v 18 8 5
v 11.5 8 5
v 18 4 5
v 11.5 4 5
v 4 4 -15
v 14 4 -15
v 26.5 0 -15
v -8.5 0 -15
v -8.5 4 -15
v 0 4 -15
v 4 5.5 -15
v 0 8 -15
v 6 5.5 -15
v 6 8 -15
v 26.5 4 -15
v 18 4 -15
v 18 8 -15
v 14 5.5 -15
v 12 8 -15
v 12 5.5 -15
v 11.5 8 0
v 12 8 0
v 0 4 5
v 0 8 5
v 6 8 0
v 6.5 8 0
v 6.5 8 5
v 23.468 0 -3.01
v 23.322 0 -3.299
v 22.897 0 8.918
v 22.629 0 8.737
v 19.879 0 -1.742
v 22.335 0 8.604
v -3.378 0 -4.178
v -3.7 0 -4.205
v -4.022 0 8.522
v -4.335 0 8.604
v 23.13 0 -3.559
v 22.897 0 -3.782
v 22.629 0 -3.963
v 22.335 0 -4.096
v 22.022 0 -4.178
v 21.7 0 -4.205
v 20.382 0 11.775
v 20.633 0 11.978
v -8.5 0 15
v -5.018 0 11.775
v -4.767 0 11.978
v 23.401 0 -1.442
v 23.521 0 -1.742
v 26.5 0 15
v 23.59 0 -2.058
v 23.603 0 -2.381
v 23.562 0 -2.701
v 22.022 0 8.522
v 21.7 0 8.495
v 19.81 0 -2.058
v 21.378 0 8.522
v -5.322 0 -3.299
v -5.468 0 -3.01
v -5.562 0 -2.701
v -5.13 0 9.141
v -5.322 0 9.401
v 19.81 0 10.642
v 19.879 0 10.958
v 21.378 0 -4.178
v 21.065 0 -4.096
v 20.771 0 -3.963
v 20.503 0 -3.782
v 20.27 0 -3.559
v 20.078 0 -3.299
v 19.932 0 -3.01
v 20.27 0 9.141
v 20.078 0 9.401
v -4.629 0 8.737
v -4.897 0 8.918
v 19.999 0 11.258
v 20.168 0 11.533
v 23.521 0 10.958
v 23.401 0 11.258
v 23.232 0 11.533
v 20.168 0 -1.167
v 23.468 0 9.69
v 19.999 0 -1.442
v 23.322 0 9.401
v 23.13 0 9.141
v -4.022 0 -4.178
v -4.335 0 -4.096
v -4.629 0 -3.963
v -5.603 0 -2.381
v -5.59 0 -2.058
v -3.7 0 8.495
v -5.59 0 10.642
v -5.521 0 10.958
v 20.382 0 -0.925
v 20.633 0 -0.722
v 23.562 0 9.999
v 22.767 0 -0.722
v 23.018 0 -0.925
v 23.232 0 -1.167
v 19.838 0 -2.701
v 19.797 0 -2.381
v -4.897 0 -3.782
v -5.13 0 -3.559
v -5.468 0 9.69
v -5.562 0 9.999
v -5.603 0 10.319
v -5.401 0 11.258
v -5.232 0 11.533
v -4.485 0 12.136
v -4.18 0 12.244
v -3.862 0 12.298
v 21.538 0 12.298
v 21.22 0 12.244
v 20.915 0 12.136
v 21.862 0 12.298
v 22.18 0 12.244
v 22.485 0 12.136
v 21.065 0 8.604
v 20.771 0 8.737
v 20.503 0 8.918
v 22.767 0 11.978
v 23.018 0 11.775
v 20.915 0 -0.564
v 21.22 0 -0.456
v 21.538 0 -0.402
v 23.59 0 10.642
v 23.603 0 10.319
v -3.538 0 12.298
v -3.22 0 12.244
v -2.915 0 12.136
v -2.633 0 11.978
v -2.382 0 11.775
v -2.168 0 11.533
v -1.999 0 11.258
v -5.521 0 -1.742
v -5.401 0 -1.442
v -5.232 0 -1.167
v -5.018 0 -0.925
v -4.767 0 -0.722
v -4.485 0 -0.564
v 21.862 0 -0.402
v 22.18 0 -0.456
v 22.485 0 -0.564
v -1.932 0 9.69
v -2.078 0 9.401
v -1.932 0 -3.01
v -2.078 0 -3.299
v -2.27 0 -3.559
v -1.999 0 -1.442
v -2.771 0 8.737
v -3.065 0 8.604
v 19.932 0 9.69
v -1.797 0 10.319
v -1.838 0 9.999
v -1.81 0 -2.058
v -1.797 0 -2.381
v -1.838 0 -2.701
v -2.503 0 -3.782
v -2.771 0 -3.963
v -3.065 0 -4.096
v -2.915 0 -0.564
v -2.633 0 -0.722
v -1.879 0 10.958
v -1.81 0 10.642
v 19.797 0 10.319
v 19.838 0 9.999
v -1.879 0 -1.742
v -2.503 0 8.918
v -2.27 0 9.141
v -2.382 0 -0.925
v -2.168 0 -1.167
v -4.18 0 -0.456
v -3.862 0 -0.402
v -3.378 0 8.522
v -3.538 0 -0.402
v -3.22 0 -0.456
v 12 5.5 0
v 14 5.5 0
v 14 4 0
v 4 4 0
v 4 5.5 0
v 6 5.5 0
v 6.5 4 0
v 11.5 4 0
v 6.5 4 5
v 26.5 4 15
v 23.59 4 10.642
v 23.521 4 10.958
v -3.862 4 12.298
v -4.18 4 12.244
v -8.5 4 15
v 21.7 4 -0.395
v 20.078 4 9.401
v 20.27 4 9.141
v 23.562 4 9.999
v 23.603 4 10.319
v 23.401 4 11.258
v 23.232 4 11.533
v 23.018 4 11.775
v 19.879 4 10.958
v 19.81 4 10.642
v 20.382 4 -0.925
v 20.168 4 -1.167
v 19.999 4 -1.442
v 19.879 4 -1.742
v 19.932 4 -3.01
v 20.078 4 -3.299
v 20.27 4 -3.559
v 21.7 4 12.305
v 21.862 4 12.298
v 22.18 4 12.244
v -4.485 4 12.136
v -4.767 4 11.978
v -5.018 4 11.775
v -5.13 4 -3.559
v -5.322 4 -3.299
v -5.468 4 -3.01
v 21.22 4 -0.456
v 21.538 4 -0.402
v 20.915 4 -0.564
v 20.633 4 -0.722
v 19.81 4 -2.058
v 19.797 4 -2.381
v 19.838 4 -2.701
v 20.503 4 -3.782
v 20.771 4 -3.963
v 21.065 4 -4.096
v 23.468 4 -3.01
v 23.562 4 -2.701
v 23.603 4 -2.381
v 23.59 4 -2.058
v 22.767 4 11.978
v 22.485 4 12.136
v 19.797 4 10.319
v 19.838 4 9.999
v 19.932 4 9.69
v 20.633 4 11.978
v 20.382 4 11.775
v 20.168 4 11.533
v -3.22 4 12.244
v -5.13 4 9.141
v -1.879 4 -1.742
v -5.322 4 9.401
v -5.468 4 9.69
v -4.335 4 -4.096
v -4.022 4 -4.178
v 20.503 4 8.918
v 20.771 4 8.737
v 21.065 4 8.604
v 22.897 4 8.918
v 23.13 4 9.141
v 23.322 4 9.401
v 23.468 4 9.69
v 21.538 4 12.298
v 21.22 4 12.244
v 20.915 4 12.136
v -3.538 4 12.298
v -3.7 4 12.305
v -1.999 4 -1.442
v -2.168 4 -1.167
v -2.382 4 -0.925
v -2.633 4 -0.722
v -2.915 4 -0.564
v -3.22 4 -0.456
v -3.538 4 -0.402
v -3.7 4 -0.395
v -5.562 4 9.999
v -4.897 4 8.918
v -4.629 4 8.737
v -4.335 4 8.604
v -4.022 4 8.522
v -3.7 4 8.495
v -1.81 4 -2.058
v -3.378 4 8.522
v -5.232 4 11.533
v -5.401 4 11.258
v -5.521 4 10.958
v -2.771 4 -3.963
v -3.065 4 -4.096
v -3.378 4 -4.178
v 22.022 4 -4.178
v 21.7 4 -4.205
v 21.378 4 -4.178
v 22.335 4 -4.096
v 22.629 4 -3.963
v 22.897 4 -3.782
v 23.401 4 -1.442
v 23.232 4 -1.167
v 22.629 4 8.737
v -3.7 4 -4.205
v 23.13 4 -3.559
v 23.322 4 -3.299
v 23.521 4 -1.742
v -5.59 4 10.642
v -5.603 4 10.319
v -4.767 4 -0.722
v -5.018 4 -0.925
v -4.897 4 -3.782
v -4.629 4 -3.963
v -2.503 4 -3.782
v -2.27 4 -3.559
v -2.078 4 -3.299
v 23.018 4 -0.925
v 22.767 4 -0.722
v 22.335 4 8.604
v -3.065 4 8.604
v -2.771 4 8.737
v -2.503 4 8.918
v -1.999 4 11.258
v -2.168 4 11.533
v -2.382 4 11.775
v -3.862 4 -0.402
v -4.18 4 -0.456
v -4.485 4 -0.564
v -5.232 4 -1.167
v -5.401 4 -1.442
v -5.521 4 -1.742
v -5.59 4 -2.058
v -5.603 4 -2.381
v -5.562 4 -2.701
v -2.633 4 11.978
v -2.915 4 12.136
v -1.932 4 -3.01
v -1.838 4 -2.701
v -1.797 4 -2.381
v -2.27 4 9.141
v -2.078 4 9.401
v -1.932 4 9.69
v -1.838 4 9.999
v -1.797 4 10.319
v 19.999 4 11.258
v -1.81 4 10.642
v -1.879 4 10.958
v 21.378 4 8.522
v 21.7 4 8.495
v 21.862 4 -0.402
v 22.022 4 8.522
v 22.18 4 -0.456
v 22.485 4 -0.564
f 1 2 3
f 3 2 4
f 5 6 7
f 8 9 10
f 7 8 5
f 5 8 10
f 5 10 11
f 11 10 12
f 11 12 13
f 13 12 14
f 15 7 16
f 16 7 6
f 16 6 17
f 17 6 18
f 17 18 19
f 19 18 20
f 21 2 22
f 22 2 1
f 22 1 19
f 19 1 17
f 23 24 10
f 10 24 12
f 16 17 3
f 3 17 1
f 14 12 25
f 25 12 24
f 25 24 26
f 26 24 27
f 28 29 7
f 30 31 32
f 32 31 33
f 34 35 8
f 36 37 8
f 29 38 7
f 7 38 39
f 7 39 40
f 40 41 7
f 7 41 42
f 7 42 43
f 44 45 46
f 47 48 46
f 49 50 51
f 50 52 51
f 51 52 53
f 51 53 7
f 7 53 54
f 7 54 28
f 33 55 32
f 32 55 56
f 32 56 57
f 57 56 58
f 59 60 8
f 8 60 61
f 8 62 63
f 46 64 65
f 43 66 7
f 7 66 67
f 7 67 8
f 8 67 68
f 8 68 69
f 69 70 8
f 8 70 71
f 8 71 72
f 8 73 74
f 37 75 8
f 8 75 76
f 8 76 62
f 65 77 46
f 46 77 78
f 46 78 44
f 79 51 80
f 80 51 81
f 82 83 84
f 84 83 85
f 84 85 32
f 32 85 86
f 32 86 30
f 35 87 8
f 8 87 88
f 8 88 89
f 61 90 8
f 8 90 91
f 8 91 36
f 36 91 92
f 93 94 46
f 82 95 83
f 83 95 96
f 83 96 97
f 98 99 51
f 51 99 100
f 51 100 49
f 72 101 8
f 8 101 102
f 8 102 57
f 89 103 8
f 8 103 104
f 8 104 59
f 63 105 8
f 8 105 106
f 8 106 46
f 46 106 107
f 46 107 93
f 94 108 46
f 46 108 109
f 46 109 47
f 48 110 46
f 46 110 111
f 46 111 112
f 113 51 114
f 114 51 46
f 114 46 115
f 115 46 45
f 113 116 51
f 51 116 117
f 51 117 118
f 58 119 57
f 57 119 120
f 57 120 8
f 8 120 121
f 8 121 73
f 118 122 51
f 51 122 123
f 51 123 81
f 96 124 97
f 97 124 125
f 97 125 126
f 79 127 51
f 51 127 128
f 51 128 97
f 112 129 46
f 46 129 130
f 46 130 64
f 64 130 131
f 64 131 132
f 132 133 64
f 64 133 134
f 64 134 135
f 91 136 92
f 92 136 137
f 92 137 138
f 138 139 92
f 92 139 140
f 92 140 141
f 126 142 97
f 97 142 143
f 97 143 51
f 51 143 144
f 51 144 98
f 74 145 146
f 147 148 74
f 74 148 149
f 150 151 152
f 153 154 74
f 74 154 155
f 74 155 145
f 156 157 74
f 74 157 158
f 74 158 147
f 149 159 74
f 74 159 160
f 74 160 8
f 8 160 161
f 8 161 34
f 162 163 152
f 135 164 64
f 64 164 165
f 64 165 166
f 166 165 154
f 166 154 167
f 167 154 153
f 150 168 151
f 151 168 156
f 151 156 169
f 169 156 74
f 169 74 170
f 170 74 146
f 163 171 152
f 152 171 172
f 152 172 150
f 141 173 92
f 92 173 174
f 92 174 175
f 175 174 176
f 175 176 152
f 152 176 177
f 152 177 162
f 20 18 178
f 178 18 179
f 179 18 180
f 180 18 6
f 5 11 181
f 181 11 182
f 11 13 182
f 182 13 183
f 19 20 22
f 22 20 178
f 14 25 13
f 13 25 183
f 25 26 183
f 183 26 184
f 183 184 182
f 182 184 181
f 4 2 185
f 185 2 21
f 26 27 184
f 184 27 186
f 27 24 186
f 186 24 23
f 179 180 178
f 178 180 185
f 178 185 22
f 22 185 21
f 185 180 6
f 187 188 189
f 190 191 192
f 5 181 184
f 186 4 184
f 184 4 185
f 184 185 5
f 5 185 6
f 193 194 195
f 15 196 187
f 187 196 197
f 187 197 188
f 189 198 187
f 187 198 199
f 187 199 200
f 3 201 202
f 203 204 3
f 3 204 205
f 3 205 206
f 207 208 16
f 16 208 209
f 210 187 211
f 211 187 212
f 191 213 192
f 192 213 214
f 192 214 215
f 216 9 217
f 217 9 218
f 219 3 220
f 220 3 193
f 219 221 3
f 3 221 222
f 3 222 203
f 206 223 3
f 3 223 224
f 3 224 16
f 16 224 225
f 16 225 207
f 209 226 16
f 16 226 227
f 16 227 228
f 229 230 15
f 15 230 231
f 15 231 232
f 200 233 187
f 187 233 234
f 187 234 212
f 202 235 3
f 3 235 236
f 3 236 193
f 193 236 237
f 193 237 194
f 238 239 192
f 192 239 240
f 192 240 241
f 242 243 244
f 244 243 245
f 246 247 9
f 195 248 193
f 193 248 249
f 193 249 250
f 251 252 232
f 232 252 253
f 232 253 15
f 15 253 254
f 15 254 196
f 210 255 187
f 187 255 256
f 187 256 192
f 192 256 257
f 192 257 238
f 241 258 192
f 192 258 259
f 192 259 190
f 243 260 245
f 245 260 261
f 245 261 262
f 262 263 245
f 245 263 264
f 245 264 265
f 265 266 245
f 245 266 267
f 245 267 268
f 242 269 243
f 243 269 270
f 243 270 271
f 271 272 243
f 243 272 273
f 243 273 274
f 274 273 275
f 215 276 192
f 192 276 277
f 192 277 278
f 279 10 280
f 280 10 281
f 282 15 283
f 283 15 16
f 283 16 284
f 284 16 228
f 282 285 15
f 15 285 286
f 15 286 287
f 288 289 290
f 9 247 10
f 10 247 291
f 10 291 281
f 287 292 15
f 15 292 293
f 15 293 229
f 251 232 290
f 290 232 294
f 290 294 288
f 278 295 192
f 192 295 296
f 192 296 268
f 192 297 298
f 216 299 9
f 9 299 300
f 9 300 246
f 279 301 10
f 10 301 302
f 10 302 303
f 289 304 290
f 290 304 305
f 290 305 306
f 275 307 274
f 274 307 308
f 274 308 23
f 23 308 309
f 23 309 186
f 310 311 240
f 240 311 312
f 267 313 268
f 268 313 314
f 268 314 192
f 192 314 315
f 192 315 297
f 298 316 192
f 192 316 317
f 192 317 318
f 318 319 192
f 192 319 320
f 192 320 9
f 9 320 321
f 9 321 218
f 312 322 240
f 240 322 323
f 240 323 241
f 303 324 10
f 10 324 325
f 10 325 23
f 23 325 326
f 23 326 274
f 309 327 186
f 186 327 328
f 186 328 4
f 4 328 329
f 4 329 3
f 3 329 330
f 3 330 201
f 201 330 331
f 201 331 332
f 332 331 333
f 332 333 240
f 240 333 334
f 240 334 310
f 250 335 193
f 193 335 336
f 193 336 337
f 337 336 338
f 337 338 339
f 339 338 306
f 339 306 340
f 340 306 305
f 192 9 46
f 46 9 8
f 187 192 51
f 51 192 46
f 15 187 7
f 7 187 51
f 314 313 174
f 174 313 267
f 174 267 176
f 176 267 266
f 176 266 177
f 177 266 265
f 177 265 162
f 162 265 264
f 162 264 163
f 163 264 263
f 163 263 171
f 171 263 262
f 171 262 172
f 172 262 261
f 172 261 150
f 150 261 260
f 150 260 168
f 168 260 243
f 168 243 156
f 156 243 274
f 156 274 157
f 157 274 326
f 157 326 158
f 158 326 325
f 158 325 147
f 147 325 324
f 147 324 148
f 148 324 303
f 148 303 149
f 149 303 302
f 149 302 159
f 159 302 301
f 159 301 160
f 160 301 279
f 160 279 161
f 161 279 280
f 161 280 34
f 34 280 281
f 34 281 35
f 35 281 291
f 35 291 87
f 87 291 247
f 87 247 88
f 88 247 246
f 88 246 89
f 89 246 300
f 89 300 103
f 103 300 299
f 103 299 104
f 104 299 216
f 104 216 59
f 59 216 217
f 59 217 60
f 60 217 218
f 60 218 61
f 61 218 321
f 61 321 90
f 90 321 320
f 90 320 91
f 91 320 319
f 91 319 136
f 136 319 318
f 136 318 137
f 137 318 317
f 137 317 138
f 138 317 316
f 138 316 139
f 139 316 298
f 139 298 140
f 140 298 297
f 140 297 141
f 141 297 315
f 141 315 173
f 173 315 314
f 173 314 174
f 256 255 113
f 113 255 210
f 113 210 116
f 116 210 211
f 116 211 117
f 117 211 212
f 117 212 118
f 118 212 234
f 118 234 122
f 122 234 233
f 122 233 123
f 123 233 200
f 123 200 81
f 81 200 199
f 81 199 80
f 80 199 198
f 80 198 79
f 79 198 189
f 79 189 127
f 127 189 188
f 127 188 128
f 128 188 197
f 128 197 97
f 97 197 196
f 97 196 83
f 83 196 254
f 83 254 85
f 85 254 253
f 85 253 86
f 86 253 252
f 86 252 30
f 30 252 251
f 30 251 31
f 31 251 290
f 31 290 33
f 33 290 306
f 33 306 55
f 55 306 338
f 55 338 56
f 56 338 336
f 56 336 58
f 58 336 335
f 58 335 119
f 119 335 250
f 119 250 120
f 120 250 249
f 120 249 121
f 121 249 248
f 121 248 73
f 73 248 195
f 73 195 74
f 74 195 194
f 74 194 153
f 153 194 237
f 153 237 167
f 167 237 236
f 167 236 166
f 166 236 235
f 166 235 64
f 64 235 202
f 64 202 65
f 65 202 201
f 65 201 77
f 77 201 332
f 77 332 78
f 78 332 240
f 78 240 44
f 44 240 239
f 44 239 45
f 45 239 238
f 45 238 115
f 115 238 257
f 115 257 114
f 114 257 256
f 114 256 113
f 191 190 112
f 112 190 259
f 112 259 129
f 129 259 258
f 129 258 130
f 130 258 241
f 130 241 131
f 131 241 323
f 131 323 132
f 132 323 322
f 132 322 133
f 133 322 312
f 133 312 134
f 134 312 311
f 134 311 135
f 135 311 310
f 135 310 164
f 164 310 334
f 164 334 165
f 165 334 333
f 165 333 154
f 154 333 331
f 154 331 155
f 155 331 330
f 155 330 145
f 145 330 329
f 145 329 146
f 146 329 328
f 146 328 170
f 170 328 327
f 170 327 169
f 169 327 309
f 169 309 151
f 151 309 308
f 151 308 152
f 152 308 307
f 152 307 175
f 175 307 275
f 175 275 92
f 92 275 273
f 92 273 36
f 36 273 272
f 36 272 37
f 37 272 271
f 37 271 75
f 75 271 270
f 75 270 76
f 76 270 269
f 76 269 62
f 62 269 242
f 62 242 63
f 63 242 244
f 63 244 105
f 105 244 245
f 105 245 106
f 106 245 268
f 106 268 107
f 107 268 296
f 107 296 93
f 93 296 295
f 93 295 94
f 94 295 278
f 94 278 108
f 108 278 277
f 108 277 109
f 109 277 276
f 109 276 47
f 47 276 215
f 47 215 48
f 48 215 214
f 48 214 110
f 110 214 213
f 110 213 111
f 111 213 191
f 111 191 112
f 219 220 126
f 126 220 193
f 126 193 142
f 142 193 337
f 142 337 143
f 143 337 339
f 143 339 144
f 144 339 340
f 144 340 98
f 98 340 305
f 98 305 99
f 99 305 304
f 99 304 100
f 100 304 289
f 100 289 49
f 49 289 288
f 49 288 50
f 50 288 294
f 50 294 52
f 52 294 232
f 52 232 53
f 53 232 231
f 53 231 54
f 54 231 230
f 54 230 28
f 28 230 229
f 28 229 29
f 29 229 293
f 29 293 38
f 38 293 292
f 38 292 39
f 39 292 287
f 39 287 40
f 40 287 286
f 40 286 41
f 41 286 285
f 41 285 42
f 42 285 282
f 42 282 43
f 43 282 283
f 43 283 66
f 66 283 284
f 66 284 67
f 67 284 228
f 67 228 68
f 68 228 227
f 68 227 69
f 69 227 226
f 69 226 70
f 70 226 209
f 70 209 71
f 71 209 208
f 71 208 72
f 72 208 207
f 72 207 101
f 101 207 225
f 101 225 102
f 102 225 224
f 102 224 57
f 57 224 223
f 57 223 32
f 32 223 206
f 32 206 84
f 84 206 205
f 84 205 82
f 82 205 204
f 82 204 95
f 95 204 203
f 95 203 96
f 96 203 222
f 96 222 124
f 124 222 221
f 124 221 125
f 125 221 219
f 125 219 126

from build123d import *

# Parameters (mm, degrees)
SKETCH1_W               = 18
SKETCH1_H               = 15
BOSS_EXTRUDE1_DEPTH     = 8
SKETCH2_W               = 6
SKETCH2_H               = 2.5
SKETCH2_W_2             = 10
SKETCH2_H_2             = 2
CUT_EXTRUDE1_DEPTH      = 1
CUT_EXTRUDE1_DEPTH_BACK = 16
SKETCH4_W               = 5
SKETCH4_H               = 3.5
BOSS_EXTRUDE2_DEPTH     = 5
SKETCH5_W               = 35
SKETCH5_H               = 30
BOSS_EXTRUDE3_DEPTH     = 4
SKETCH6_R               = 1.905
CUT_EXTRUDE2_DEPTH      = 1
CUT_EXTRUDE2_DEPTH_BACK = 9


with BuildPart() as part:
    # Sketch1 → Boss-Extrude1 (new body)
    with BuildSketch(Plane(origin=(0, 0, 0), x_dir=(1, 0, 0), z_dir=(0, 1, 0))):
        with Locations((9, 7.5)):
            Rectangle(SKETCH1_W, SKETCH1_H)
    extrude(amount=BOSS_EXTRUDE1_DEPTH)

    # Sketch2 → Cut-Extrude1 (cut, two sides)
    with BuildSketch(Plane.XY) as cut_extrude1_sk:
        with Locations((9, 6.75)):
            Rectangle(SKETCH2_W, SKETCH2_H)
        with Locations((9, 4.5)):
            Rectangle(SKETCH2_W_2, SKETCH2_H_2)
    extrude(amount=CUT_EXTRUDE1_DEPTH, mode=Mode.SUBTRACT)
    extrude(cut_extrude1_sk.sketch, amount=-CUT_EXTRUDE1_DEPTH_BACK, mode=Mode.SUBTRACT)

    # Sketch4 → Boss-Extrude2 (add)
    with BuildSketch(Plane.XY):
        with Locations((9, 1.75)):
            Rectangle(SKETCH4_W, SKETCH4_H)
        Polygon((11.5, 3.5), (11.5, 0), (18, 0), (18, 8), (12, 8), (12, 5.5), (14, 5.5), (14, 3.5), align=None)
        Polygon((6, 8), (0, 8), (0, 0), (6.5, 0), (6.5, 3.5), (4, 3.5), (4, 5.5), (6, 5.5), align=None)
        Polygon((6.5, 8), (6, 8), (6, 5.5), (4, 5.5), (4, 3.5), (6.5, 3.5), align=None)
        Polygon((12, 8), (11.5, 8), (11.5, 3.5), (14, 3.5), (14, 5.5), (12, 5.5), align=None)
    extrude(amount=BOSS_EXTRUDE2_DEPTH)

    # Sketch5 → Boss-Extrude3 (add)
    with BuildSketch(Plane(origin=(0, 0, 0), x_dir=(-1, 0, 0), z_dir=(0, -1, 0))):
        with Locations((-9, 0)):
            Rectangle(SKETCH5_W, SKETCH5_H)
    extrude(amount=-BOSS_EXTRUDE3_DEPTH)

    # Sketch6 → Cut-Extrude2 (cut, two sides)
    with BuildSketch(Plane(origin=(0, 0, 0), x_dir=(-1, 0, 0), z_dir=(0, -1, 0))) as cut_extrude2_sk:
        with Locations((3.7, 2.3)):
            Circle(SKETCH6_R)
        with Locations((-21.7, -10.4)):
            Circle(SKETCH6_R)
        with Locations((3.7, -10.4)):
            Circle(SKETCH6_R)
        with Locations((-21.7, 2.3)):
            Circle(SKETCH6_R)
    extrude(amount=CUT_EXTRUDE2_DEPTH, mode=Mode.SUBTRACT)
    extrude(cut_extrude2_sk.sketch, amount=-CUT_EXTRUDE2_DEPTH_BACK, mode=Mode.SUBTRACT)


solid = part.part
